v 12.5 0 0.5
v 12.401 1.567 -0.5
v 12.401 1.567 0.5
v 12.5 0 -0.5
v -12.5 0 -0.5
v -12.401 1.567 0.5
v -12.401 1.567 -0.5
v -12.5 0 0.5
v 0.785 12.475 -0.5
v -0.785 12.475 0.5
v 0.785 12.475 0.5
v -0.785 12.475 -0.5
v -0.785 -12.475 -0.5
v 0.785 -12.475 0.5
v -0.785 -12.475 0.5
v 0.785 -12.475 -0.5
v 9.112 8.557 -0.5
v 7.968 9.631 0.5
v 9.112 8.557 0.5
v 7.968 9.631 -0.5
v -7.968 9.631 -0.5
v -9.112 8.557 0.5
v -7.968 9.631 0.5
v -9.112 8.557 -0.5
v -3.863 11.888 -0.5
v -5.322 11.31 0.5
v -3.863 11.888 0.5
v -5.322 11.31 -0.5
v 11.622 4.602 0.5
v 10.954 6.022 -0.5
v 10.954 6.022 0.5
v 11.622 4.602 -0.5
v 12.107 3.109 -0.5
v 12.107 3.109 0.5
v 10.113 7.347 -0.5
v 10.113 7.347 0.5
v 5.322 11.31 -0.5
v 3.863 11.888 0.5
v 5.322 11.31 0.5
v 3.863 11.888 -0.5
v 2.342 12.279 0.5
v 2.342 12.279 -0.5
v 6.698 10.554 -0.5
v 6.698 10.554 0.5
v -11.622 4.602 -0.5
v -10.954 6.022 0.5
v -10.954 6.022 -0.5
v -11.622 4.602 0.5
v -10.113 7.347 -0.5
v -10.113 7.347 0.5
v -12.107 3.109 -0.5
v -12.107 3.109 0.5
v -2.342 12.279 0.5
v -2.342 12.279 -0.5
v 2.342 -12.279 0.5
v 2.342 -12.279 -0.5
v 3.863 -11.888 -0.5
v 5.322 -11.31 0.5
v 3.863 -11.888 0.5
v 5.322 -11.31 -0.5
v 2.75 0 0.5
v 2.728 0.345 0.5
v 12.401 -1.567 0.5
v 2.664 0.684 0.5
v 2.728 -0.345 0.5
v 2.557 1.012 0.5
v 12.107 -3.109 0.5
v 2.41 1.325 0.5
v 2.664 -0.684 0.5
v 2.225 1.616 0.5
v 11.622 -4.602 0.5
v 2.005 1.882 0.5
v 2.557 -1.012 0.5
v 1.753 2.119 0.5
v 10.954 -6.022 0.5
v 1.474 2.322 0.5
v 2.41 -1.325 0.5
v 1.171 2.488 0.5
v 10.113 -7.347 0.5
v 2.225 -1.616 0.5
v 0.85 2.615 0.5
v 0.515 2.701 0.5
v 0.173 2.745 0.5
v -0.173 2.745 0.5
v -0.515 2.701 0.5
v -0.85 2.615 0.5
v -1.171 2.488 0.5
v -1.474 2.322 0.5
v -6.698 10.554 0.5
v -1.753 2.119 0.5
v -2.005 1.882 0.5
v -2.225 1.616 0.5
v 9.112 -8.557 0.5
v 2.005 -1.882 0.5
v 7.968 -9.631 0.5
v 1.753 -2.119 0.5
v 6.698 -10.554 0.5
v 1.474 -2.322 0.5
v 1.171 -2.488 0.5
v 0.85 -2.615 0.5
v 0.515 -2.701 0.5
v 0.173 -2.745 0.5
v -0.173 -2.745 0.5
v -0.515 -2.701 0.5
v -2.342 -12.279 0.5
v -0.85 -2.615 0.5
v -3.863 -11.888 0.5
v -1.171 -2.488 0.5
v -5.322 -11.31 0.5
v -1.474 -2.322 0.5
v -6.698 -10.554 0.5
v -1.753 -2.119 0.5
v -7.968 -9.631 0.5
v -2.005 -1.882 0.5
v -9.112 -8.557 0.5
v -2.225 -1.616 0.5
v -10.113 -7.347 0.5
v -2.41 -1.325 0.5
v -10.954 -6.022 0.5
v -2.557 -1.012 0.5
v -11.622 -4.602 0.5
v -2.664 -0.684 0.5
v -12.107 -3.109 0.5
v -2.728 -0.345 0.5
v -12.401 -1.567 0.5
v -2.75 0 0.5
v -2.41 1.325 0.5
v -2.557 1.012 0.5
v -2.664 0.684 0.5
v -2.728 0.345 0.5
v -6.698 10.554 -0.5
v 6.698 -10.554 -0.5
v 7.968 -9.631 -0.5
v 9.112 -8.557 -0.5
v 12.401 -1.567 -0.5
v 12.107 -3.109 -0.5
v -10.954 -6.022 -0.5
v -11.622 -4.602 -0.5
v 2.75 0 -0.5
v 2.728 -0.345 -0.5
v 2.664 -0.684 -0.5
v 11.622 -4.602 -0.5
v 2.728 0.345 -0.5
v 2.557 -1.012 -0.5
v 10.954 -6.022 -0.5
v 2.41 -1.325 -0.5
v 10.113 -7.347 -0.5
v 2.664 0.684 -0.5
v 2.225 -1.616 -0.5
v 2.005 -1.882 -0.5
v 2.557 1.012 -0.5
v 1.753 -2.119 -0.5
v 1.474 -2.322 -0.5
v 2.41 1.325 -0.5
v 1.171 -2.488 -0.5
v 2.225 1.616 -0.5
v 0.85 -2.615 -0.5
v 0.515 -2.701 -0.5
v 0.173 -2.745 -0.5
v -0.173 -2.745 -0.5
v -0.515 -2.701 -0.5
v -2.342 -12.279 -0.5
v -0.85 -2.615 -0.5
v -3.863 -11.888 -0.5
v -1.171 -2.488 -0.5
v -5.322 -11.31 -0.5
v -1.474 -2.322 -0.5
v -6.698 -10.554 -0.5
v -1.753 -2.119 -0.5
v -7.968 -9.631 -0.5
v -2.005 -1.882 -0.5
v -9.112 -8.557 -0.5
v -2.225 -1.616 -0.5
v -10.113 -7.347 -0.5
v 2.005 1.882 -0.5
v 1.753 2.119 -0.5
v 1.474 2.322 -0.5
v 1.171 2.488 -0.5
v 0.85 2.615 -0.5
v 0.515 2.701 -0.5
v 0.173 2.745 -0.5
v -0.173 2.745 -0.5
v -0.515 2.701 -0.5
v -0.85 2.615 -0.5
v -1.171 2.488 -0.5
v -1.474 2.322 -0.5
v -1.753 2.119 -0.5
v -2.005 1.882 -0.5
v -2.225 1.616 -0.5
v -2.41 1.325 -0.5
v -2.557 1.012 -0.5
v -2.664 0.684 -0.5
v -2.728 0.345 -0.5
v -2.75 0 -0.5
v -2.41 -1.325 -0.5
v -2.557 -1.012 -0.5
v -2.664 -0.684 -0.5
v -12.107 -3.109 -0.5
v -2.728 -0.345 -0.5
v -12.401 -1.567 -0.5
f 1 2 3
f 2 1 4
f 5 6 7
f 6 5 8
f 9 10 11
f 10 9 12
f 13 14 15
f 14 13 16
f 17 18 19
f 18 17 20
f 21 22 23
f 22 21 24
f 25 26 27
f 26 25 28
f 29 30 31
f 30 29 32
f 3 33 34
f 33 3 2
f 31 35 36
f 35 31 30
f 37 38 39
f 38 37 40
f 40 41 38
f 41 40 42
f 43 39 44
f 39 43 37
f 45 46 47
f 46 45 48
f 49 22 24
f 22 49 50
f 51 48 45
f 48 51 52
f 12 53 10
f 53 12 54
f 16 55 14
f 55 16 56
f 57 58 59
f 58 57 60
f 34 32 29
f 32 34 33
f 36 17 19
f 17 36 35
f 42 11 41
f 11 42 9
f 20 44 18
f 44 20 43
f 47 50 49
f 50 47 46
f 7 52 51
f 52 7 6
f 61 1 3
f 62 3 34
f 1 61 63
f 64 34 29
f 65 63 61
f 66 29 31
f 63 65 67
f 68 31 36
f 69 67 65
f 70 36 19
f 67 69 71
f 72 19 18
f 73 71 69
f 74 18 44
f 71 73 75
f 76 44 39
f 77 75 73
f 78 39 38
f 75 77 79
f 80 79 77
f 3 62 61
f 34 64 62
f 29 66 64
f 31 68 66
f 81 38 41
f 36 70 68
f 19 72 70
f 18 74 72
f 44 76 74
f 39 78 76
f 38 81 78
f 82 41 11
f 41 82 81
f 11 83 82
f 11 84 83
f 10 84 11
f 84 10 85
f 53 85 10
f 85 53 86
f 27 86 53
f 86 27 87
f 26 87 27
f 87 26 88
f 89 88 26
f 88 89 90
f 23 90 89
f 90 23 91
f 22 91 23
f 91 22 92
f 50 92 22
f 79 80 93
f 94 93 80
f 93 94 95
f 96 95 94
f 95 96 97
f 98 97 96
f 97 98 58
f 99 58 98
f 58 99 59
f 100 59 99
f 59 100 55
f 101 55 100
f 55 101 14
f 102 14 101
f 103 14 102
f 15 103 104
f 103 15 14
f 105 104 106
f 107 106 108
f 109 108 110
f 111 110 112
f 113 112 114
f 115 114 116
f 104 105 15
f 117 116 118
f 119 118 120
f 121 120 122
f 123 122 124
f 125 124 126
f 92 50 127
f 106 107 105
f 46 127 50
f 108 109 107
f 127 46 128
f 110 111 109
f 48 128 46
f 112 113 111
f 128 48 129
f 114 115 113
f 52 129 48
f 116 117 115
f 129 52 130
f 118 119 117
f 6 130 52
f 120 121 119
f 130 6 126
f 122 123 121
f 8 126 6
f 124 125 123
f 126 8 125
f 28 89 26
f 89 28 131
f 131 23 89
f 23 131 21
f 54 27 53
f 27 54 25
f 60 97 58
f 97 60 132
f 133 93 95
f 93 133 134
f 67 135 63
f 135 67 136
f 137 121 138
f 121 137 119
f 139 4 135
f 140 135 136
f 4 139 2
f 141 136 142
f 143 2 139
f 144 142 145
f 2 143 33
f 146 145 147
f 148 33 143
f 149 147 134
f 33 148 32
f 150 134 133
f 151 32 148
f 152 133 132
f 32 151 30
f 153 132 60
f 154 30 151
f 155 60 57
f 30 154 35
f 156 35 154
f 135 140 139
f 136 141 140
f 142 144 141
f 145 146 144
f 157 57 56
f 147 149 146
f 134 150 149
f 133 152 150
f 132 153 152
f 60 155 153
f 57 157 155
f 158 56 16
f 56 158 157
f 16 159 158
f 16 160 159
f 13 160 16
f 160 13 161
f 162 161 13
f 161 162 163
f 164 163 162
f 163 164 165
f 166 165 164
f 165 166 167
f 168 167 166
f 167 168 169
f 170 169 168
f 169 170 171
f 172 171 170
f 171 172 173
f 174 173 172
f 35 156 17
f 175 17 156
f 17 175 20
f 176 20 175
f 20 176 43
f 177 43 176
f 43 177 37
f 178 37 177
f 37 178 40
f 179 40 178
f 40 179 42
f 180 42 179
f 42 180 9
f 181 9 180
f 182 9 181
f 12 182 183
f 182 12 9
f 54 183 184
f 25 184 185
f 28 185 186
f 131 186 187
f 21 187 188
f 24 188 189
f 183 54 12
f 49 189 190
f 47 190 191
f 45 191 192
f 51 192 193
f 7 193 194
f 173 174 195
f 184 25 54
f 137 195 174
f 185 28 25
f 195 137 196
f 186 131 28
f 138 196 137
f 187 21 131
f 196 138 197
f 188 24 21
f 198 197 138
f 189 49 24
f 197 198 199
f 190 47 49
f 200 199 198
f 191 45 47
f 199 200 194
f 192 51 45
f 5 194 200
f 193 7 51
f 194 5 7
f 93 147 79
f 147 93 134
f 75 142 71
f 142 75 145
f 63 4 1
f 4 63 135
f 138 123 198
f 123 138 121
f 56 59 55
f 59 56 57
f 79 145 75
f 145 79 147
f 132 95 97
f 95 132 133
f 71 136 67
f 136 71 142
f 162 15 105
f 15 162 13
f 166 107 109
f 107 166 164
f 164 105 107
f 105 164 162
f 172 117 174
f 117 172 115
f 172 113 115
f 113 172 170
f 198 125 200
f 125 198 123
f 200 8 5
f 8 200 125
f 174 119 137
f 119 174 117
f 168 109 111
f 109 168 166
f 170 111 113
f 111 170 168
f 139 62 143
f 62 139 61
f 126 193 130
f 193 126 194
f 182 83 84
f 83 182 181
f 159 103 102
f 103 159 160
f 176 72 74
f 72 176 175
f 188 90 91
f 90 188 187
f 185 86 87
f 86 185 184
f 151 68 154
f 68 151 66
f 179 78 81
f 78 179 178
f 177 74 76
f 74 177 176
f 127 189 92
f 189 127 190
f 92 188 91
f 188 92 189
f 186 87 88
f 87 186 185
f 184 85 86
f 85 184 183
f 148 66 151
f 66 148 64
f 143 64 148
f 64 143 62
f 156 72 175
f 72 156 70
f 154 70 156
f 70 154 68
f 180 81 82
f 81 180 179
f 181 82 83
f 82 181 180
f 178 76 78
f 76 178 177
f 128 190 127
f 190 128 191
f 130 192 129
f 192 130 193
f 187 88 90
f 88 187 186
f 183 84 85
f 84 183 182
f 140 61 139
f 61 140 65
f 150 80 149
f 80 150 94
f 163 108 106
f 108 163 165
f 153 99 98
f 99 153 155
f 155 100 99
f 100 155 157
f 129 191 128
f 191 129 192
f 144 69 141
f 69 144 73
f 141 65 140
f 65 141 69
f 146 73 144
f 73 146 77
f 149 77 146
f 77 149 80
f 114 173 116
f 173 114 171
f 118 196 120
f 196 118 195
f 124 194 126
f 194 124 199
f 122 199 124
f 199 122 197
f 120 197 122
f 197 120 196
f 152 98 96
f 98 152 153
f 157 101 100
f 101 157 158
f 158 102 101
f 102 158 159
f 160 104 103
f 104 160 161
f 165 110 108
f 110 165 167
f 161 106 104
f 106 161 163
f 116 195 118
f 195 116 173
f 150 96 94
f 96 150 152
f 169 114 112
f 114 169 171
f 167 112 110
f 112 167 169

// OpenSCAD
$fn = 50;


difference() {
	union() {
		translate(v = [0, 0, -0.5000000000]) {
			cylinder(h = 1, r = 12.5000000000);
		}
	}
	union() {
		translate(v = [0, 0, -100.0000000000]) {
			cylinder(h = 200, r = 2.7500000000);
		}
	}
}
